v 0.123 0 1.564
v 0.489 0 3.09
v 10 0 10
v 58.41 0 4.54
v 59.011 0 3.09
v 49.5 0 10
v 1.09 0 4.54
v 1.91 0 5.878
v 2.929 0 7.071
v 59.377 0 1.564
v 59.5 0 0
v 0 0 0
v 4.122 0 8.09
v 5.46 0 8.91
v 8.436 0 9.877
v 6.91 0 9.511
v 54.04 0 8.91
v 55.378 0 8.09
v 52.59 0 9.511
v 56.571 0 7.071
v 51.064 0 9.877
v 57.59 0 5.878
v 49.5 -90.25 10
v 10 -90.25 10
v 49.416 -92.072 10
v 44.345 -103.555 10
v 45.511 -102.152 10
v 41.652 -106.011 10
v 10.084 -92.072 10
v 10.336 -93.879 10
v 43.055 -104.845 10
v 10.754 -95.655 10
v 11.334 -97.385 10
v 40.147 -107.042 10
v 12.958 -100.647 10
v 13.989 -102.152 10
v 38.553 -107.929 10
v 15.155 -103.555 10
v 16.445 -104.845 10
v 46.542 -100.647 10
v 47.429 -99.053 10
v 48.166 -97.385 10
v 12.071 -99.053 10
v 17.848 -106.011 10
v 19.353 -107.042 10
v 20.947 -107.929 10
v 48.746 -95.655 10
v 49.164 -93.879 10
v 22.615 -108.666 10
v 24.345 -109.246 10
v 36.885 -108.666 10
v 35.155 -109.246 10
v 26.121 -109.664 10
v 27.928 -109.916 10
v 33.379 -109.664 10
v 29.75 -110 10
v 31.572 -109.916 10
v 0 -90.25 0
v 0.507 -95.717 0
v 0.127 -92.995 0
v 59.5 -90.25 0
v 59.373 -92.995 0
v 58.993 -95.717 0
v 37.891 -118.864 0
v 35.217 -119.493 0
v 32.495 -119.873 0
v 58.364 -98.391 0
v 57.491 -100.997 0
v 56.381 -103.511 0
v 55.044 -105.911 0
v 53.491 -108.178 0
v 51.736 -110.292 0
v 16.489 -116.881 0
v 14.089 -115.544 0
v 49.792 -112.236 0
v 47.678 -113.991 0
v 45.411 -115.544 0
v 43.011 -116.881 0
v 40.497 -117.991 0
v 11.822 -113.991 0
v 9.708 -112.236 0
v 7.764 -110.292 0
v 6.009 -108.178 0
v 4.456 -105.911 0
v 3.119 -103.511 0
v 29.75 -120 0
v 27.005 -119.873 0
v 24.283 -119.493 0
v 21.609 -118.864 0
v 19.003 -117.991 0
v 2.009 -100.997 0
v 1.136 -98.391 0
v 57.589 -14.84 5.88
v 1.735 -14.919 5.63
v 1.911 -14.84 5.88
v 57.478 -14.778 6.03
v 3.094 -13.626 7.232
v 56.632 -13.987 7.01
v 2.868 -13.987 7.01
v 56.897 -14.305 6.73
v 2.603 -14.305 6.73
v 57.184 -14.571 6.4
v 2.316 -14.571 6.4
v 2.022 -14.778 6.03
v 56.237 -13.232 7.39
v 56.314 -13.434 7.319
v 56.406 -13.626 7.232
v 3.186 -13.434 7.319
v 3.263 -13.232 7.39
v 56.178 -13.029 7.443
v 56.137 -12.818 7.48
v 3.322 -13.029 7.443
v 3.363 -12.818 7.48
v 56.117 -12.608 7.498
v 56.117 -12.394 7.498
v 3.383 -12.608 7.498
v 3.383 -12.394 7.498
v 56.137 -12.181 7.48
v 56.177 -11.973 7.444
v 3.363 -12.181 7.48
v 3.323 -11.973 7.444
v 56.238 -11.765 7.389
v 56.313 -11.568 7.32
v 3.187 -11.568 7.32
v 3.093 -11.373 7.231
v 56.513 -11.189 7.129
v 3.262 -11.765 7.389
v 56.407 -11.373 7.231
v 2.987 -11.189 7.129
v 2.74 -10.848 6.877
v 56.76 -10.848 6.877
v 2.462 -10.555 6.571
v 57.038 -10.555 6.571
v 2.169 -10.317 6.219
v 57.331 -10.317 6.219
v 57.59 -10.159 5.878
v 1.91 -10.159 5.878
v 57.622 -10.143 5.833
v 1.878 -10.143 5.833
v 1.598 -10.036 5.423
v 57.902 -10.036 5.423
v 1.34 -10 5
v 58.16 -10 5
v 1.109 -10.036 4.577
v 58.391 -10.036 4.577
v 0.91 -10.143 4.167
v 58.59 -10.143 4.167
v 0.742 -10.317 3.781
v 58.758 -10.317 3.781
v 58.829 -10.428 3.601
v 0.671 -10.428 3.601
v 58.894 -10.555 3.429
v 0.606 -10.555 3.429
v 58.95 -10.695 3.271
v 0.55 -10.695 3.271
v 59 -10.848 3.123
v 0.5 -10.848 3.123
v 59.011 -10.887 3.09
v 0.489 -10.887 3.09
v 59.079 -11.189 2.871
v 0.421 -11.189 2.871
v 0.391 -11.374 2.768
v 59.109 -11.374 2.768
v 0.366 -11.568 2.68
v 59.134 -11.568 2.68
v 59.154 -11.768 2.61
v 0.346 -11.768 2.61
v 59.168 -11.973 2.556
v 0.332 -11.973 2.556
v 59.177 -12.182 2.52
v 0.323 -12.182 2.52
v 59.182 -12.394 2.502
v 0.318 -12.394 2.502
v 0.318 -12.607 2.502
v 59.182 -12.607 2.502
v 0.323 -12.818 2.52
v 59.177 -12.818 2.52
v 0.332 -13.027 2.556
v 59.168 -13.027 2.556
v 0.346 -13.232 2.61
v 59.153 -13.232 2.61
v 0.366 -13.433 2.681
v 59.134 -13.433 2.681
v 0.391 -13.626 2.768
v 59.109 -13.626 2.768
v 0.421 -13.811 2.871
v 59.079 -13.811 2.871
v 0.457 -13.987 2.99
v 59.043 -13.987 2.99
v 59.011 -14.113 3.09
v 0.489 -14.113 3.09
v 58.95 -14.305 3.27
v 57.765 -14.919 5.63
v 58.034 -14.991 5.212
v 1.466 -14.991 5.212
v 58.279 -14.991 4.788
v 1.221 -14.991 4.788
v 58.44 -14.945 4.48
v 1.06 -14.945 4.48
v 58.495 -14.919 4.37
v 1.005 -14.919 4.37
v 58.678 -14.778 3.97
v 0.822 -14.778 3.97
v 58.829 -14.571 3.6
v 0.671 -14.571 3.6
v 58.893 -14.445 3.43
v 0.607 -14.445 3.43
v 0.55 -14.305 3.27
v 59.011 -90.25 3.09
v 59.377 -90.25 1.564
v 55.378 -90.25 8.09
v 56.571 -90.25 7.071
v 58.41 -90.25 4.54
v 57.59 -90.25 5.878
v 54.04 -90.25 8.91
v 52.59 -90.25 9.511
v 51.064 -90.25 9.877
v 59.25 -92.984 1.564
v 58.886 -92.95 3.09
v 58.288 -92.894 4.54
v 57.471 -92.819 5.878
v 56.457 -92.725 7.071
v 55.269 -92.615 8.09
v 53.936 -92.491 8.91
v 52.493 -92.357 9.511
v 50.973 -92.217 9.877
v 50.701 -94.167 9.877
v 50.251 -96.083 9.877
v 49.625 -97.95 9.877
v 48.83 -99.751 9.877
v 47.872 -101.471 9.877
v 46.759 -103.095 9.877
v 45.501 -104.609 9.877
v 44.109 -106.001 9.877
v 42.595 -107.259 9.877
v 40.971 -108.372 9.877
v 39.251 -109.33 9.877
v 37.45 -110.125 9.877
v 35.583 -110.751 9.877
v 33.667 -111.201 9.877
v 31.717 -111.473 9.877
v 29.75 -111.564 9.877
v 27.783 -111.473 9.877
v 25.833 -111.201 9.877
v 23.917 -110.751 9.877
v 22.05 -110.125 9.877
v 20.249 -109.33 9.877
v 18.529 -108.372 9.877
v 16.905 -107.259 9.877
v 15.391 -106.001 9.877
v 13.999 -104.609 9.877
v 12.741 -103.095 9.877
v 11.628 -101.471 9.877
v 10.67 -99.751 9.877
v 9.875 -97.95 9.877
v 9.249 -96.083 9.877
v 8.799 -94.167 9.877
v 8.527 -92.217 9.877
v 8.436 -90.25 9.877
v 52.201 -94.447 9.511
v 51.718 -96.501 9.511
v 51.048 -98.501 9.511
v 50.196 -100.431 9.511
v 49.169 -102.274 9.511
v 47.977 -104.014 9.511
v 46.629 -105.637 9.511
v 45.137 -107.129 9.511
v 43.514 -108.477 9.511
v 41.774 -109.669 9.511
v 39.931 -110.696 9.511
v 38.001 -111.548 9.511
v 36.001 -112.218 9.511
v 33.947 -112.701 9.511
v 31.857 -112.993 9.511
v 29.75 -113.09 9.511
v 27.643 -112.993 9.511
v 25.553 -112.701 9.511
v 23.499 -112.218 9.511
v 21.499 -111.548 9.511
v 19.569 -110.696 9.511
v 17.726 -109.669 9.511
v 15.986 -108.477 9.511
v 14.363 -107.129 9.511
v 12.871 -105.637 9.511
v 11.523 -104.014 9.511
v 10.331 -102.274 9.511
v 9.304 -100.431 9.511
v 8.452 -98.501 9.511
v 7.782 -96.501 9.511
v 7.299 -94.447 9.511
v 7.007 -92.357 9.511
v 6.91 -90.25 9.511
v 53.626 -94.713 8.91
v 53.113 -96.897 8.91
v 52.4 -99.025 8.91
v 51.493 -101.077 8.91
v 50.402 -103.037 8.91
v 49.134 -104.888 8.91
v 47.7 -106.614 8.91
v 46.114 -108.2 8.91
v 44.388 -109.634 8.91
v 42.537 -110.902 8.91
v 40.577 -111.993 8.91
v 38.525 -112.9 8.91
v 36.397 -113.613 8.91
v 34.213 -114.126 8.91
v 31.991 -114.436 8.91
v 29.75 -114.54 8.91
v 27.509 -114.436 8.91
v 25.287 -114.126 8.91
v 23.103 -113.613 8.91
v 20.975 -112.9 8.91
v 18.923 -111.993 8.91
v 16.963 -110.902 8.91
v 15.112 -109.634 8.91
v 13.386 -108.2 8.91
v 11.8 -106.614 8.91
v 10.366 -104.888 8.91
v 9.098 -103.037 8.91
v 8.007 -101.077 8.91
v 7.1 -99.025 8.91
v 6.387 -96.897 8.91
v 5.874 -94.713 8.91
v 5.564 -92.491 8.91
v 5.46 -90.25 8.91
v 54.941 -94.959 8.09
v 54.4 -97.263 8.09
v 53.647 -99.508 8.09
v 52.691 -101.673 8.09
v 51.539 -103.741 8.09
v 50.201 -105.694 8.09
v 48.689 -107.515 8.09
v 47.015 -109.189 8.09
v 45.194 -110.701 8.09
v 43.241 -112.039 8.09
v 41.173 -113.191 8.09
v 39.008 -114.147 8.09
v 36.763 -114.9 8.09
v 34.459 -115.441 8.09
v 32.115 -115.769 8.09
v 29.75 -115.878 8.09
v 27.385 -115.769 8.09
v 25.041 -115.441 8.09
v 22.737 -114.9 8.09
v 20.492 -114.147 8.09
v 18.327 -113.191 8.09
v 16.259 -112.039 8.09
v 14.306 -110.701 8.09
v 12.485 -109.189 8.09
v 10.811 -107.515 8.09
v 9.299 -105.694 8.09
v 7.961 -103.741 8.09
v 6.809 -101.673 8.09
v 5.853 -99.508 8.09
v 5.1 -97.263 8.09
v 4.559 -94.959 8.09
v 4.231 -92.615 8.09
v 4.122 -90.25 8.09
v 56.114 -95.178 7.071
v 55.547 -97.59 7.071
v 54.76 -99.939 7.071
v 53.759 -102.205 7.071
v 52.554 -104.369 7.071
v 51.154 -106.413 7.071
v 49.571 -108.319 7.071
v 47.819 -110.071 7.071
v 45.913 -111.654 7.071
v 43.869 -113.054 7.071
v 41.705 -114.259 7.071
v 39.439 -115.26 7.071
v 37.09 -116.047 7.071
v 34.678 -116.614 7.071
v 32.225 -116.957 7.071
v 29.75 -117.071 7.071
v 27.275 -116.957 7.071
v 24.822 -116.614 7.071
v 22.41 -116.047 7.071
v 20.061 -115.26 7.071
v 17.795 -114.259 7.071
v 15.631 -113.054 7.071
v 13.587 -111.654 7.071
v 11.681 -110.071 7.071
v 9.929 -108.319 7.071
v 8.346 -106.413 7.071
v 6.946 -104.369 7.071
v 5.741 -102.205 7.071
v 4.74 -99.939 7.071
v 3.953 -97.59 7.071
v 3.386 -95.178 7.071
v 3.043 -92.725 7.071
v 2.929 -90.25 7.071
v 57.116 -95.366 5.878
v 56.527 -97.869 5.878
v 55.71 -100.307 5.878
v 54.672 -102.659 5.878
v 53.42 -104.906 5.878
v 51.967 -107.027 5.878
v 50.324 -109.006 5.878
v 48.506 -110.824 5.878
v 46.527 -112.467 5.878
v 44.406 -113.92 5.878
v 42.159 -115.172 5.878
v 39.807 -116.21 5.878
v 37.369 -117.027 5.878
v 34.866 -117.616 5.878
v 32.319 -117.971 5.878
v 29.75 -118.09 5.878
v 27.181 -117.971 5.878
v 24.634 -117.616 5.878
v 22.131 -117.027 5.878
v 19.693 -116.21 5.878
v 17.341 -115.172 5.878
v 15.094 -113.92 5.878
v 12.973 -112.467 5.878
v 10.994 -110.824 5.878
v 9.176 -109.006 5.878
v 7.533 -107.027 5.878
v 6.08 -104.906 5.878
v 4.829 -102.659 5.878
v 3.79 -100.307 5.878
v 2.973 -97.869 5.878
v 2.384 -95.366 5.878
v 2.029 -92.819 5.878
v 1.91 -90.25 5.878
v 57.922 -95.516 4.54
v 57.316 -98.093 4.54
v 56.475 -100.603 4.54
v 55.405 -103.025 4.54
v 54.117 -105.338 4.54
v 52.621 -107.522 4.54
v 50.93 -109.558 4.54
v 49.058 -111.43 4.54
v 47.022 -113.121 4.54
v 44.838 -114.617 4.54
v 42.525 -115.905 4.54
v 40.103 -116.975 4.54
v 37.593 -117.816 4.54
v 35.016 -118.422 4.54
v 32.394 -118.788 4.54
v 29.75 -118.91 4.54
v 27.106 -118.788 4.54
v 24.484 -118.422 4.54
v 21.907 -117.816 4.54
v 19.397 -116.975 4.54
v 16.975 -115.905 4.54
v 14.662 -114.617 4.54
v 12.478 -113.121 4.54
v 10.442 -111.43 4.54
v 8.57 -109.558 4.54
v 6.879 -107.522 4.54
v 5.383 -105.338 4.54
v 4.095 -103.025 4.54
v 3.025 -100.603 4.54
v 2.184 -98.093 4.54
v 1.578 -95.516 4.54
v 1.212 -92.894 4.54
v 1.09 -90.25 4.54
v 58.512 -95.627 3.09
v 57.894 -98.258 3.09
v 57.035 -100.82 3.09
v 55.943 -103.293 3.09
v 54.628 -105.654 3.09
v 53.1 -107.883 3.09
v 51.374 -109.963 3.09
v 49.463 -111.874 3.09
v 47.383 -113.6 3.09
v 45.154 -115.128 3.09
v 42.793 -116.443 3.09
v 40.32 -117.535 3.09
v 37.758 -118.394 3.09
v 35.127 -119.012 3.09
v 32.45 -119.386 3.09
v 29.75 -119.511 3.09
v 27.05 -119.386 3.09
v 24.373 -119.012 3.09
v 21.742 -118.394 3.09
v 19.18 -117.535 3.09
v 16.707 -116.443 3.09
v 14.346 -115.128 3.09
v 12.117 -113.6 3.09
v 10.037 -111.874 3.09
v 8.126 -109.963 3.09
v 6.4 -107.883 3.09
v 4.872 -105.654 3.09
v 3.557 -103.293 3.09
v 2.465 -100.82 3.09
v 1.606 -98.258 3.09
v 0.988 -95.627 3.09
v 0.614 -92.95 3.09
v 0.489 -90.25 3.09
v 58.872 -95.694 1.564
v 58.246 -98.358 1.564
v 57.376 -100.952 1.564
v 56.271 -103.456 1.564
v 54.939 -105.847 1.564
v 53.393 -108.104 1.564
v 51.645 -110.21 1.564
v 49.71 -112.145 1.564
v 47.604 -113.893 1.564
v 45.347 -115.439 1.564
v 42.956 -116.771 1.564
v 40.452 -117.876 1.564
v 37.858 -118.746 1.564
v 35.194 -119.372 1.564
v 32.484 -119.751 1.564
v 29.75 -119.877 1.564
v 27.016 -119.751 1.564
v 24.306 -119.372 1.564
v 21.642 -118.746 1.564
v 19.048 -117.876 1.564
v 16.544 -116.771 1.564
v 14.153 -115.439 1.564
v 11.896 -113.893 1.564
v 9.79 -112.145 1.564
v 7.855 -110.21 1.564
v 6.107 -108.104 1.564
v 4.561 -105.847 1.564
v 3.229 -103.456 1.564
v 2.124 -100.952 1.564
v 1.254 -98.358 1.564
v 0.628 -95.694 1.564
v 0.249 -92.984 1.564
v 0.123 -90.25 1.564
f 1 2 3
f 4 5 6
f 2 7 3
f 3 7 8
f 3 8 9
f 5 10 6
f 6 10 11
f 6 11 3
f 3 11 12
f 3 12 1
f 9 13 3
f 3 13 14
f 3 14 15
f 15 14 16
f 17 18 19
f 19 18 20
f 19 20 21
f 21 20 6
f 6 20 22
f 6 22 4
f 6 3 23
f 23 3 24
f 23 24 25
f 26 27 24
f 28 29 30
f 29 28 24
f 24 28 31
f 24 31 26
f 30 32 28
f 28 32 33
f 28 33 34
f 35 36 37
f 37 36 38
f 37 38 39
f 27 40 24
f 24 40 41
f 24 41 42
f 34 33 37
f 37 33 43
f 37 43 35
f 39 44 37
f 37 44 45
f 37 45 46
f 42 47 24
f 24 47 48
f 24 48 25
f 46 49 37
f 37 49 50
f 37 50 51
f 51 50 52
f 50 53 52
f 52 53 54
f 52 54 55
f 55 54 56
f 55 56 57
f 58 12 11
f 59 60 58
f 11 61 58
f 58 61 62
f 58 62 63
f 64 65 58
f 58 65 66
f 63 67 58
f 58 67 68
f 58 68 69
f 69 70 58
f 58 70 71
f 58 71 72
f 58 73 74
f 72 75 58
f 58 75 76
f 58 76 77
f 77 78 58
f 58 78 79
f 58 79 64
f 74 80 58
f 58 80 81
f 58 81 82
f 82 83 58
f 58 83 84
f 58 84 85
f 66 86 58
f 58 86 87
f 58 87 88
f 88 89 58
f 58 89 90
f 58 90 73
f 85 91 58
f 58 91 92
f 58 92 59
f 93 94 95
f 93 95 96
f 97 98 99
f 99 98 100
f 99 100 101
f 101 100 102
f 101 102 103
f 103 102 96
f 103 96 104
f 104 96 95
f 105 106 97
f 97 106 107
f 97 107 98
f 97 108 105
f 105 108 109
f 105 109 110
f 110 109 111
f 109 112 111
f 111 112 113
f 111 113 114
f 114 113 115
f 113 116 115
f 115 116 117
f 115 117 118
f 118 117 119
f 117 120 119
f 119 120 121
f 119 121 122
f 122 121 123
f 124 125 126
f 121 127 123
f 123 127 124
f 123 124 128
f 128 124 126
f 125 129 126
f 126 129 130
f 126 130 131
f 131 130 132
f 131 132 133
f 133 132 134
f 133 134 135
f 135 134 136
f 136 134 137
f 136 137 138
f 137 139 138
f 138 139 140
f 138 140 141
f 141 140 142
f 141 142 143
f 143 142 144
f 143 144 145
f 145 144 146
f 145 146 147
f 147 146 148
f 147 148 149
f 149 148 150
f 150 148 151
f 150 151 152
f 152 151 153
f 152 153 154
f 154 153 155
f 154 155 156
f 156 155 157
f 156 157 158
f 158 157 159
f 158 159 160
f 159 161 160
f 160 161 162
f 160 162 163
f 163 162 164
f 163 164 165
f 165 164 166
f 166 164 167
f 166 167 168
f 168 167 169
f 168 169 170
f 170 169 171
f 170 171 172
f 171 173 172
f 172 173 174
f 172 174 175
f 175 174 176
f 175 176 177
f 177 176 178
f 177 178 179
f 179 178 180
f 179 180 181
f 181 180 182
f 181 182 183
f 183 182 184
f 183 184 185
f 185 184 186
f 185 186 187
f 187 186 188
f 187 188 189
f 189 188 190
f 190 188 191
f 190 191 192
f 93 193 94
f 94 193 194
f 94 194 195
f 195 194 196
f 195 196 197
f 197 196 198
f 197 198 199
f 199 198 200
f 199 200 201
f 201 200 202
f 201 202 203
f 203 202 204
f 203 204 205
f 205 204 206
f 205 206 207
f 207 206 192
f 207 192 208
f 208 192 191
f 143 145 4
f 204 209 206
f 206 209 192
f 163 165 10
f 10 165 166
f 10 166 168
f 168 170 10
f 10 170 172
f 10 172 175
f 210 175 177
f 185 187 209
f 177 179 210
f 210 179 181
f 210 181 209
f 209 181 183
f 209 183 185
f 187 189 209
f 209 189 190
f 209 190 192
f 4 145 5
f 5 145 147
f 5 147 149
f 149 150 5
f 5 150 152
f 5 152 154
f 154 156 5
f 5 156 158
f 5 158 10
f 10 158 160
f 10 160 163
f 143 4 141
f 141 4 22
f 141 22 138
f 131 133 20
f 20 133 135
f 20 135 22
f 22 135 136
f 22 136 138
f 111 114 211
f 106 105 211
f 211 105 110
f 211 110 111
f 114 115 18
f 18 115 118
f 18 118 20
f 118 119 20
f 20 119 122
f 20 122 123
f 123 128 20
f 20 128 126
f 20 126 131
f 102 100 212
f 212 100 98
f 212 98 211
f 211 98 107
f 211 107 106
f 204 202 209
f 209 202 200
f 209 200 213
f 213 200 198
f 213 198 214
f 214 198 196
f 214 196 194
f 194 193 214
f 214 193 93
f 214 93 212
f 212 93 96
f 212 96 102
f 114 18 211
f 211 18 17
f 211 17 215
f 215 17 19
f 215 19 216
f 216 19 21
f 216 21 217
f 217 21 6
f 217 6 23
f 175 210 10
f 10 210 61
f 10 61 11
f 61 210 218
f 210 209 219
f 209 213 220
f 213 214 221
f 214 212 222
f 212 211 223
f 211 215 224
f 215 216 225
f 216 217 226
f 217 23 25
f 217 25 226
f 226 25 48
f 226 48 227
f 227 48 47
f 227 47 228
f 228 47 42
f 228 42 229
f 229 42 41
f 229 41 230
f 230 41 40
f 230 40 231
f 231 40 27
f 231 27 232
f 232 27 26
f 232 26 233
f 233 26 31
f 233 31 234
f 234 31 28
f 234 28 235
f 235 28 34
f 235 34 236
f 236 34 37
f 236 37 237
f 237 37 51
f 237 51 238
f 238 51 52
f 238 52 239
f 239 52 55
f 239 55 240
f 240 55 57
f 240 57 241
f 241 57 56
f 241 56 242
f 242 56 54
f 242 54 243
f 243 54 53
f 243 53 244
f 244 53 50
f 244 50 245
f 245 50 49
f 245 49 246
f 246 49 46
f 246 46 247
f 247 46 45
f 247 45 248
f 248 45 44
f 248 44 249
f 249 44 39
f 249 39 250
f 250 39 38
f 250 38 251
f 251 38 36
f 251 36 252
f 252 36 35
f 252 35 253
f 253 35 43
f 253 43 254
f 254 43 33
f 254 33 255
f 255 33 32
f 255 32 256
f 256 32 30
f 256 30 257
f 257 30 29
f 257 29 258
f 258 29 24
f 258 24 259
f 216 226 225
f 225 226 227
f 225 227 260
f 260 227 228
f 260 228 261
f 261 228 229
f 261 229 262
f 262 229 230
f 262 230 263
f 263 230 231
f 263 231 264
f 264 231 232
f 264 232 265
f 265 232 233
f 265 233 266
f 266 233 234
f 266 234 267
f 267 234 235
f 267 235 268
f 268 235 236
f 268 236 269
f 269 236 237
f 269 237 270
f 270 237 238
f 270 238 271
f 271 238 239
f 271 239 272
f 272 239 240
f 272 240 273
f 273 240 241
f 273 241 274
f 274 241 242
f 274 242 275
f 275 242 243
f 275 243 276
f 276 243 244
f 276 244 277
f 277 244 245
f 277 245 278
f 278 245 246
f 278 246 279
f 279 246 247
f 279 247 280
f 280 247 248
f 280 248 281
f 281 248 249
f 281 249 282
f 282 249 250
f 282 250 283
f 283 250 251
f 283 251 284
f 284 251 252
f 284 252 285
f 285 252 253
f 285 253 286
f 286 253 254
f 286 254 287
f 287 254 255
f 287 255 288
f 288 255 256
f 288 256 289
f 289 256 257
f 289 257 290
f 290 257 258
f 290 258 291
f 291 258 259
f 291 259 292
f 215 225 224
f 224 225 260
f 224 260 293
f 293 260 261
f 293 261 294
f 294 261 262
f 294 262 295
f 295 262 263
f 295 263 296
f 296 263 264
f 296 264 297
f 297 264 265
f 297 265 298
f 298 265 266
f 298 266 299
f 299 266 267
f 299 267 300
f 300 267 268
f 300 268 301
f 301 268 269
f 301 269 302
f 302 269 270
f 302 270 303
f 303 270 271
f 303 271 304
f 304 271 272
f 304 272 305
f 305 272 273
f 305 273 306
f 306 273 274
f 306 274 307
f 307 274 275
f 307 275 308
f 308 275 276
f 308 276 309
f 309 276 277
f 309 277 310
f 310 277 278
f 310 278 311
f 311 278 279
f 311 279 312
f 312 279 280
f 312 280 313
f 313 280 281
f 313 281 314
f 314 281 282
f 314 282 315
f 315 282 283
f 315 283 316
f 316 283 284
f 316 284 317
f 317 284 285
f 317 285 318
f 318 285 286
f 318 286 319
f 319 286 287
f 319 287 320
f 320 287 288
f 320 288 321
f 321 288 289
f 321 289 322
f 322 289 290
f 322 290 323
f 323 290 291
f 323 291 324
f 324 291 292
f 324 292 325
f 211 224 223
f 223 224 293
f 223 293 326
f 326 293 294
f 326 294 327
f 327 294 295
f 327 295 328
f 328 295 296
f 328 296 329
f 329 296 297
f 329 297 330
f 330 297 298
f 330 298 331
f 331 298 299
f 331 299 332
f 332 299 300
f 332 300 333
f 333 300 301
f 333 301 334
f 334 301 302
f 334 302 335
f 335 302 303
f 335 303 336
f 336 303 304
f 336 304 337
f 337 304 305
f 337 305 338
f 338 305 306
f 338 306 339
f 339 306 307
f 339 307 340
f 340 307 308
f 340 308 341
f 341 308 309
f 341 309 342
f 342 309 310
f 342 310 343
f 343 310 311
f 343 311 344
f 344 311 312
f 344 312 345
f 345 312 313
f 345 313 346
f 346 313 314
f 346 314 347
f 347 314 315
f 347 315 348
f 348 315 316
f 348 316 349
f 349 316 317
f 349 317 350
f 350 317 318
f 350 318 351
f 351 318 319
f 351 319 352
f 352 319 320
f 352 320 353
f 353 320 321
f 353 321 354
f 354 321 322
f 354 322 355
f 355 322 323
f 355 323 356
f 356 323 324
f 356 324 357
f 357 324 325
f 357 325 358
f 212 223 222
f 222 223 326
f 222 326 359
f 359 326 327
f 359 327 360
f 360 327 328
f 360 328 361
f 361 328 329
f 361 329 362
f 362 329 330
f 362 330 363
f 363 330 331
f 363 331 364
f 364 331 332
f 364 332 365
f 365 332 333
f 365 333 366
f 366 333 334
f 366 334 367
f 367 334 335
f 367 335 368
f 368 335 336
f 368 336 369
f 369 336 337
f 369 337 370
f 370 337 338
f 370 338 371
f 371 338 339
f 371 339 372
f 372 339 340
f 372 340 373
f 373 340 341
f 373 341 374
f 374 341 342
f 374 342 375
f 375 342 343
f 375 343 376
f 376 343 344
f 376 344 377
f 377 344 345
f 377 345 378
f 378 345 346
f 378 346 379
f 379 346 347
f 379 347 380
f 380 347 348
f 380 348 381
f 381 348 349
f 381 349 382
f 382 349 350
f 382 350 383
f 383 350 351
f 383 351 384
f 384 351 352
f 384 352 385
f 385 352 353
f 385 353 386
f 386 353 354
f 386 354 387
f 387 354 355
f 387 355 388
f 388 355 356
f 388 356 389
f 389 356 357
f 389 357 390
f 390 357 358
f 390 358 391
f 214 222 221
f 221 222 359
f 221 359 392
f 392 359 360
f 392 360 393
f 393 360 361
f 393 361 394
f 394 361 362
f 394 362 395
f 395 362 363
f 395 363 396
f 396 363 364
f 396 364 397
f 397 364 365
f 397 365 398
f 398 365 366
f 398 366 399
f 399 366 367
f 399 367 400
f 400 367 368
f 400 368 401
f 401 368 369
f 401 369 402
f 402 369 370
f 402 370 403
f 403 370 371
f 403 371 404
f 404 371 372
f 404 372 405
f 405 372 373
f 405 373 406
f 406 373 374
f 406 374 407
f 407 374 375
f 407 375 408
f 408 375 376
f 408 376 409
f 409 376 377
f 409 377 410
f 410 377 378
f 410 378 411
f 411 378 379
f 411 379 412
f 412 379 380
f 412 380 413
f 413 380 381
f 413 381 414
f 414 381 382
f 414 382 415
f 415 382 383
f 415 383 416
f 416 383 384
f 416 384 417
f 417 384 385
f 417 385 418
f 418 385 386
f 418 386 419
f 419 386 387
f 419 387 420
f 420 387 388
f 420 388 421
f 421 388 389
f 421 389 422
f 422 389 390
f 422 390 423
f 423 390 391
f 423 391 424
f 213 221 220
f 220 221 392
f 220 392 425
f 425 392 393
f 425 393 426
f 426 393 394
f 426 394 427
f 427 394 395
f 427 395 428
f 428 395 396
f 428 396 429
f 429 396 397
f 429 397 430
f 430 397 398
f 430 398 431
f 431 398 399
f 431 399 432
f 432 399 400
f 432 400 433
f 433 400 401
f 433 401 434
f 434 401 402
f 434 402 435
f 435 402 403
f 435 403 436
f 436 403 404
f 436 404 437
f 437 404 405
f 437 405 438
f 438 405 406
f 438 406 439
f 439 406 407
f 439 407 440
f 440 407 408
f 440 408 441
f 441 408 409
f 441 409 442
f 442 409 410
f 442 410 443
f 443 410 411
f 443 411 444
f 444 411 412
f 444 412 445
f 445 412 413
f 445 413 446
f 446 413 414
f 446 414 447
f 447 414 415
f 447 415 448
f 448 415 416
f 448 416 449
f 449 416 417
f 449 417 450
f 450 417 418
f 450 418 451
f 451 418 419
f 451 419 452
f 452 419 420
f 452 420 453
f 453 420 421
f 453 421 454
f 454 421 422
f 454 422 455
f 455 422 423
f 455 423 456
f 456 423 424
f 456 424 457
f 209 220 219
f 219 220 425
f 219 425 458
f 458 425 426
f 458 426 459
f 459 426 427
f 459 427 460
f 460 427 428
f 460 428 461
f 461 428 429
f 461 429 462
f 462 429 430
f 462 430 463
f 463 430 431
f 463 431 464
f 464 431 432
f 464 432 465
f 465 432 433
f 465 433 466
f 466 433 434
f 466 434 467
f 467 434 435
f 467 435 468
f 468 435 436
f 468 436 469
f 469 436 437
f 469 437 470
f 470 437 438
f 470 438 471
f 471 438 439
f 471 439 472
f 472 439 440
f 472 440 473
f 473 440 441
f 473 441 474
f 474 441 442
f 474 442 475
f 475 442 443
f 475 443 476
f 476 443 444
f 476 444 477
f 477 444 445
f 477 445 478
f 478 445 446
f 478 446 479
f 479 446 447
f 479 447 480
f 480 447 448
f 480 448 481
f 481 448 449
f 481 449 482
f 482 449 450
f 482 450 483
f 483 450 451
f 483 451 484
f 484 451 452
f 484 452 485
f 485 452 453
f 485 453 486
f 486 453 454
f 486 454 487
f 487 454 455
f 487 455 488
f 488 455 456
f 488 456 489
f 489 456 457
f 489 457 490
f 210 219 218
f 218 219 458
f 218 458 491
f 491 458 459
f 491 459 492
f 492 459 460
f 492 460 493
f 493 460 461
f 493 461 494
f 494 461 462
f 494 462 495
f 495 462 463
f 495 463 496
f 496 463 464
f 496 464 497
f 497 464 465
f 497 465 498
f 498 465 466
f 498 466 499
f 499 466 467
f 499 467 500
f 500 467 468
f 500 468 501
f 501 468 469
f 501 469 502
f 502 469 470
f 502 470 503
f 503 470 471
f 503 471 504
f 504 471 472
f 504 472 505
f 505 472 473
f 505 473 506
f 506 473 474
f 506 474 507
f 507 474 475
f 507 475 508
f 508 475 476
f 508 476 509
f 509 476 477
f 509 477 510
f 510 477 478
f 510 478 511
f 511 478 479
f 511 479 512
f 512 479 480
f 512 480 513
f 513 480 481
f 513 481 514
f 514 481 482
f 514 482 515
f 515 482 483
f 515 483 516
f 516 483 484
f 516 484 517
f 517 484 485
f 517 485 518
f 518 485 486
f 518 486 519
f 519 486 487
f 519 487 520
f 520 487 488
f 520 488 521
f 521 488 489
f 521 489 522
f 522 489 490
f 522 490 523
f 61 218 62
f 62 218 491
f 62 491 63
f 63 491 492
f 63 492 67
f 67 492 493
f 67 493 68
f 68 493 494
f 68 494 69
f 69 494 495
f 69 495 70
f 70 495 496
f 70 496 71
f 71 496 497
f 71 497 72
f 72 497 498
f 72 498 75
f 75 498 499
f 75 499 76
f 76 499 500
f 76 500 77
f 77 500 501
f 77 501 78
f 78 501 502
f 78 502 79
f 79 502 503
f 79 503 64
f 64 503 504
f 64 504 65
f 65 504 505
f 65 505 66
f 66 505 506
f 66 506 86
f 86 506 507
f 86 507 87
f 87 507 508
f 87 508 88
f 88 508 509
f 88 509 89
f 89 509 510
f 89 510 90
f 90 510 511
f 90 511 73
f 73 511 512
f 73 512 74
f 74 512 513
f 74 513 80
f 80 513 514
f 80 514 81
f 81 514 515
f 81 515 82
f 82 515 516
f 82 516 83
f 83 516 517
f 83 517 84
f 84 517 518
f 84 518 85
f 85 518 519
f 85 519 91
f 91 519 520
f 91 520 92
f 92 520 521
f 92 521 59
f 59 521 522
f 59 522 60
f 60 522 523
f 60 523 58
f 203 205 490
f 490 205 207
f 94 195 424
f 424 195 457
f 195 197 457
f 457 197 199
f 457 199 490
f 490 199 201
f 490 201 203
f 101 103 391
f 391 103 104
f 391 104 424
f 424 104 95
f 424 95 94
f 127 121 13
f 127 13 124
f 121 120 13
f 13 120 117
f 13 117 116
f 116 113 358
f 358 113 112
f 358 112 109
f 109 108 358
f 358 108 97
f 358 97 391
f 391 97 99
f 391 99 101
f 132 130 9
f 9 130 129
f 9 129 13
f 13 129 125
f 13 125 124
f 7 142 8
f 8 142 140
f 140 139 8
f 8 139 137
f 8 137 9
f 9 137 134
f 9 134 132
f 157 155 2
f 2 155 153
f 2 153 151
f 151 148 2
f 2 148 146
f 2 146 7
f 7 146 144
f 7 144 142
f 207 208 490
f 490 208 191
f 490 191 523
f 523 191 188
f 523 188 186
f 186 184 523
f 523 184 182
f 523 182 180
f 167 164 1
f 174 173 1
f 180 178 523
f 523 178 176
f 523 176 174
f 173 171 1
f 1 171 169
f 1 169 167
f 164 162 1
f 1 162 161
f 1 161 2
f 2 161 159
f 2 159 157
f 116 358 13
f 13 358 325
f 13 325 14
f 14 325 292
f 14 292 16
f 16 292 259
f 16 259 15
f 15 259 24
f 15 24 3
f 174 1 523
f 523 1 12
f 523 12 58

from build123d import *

# Parameters (mm, degrees)
EXTRUDE_1_DEPTH     = 10
SKETCH_9_R          = 2.5
CUT_EXTRUDE_1_DEPTH = 59.5
FILLET_3_R          = 10


with BuildPart() as part:
    # Эскиз1 → Бобышка-Вытянуть1 (new body)
    with BuildSketch(Plane.XY):
        with BuildLine():
            Line((0, 0), (59.5, 0))
            Line((59.5, 0), (59.5, -90.25))
            ThreePointArc((59.5, -90.25), (29.75, -120), (0, -90.25))
            Line((0, -90.25), (0, 0))
        make_face()
    extrude(amount=EXTRUDE_1_DEPTH)

    # Эскиз9 → Вырез-Вытянуть1 (cut)
    with BuildSketch(Plane(origin=(59.5, 0, 0), x_dir=(0, 0, -1), z_dir=(1, 0, 0))):
        with Locations(Location((-5, -12.5, 0), (0, 0, 90))):
            Circle(SKETCH_9_R)
    extrude(amount=-CUT_EXTRUDE_1_DEPTH, mode=Mode.SUBTRACT)

    # Скругление3
    # the kernel refuses this fillet: 10 mm, written as the material it takes off along each edge
    with BuildSketch(Plane(origin=(0, -90.25, 10), x_dir=(0, 0, -1), z_dir=(0, 1, 0)), Plane(origin=(59.5, 25, 10), x_dir=(0, 0, -1), z_dir=(0, -1, 0))) as fillet_3_piece_1:
        with BuildLine():
            CenterArc((FILLET_3_R, -FILLET_3_R), FILLET_3_R, 90, 90)
            Line((0, -FILLET_3_R), (0, 0))
            Line((0, 0), (FILLET_3_R, 0))
        make_face()
    extrude(amount=115.25, mode=Mode.SUBTRACT)
    with BuildSketch(Plane(origin=(29.75, -90.25, 10), x_dir=(1, 0, 0), z_dir=(0, 1, 0))) as fillet_3_piece_2:
        with BuildLine():
            CenterArc((29.75 - FILLET_3_R, FILLET_3_R), FILLET_3_R, 270, 90)
            Line((29.75 - FILLET_3_R, 0), (29.75, 0))
            Line((29.75, 0), (29.75, FILLET_3_R))
        make_face()
    revolve(axis=Axis((29.75, -90.25, 10), (0, 0, -1)), revolution_arc=180, mode=Mode.SUBTRACT)


solid = part.part
